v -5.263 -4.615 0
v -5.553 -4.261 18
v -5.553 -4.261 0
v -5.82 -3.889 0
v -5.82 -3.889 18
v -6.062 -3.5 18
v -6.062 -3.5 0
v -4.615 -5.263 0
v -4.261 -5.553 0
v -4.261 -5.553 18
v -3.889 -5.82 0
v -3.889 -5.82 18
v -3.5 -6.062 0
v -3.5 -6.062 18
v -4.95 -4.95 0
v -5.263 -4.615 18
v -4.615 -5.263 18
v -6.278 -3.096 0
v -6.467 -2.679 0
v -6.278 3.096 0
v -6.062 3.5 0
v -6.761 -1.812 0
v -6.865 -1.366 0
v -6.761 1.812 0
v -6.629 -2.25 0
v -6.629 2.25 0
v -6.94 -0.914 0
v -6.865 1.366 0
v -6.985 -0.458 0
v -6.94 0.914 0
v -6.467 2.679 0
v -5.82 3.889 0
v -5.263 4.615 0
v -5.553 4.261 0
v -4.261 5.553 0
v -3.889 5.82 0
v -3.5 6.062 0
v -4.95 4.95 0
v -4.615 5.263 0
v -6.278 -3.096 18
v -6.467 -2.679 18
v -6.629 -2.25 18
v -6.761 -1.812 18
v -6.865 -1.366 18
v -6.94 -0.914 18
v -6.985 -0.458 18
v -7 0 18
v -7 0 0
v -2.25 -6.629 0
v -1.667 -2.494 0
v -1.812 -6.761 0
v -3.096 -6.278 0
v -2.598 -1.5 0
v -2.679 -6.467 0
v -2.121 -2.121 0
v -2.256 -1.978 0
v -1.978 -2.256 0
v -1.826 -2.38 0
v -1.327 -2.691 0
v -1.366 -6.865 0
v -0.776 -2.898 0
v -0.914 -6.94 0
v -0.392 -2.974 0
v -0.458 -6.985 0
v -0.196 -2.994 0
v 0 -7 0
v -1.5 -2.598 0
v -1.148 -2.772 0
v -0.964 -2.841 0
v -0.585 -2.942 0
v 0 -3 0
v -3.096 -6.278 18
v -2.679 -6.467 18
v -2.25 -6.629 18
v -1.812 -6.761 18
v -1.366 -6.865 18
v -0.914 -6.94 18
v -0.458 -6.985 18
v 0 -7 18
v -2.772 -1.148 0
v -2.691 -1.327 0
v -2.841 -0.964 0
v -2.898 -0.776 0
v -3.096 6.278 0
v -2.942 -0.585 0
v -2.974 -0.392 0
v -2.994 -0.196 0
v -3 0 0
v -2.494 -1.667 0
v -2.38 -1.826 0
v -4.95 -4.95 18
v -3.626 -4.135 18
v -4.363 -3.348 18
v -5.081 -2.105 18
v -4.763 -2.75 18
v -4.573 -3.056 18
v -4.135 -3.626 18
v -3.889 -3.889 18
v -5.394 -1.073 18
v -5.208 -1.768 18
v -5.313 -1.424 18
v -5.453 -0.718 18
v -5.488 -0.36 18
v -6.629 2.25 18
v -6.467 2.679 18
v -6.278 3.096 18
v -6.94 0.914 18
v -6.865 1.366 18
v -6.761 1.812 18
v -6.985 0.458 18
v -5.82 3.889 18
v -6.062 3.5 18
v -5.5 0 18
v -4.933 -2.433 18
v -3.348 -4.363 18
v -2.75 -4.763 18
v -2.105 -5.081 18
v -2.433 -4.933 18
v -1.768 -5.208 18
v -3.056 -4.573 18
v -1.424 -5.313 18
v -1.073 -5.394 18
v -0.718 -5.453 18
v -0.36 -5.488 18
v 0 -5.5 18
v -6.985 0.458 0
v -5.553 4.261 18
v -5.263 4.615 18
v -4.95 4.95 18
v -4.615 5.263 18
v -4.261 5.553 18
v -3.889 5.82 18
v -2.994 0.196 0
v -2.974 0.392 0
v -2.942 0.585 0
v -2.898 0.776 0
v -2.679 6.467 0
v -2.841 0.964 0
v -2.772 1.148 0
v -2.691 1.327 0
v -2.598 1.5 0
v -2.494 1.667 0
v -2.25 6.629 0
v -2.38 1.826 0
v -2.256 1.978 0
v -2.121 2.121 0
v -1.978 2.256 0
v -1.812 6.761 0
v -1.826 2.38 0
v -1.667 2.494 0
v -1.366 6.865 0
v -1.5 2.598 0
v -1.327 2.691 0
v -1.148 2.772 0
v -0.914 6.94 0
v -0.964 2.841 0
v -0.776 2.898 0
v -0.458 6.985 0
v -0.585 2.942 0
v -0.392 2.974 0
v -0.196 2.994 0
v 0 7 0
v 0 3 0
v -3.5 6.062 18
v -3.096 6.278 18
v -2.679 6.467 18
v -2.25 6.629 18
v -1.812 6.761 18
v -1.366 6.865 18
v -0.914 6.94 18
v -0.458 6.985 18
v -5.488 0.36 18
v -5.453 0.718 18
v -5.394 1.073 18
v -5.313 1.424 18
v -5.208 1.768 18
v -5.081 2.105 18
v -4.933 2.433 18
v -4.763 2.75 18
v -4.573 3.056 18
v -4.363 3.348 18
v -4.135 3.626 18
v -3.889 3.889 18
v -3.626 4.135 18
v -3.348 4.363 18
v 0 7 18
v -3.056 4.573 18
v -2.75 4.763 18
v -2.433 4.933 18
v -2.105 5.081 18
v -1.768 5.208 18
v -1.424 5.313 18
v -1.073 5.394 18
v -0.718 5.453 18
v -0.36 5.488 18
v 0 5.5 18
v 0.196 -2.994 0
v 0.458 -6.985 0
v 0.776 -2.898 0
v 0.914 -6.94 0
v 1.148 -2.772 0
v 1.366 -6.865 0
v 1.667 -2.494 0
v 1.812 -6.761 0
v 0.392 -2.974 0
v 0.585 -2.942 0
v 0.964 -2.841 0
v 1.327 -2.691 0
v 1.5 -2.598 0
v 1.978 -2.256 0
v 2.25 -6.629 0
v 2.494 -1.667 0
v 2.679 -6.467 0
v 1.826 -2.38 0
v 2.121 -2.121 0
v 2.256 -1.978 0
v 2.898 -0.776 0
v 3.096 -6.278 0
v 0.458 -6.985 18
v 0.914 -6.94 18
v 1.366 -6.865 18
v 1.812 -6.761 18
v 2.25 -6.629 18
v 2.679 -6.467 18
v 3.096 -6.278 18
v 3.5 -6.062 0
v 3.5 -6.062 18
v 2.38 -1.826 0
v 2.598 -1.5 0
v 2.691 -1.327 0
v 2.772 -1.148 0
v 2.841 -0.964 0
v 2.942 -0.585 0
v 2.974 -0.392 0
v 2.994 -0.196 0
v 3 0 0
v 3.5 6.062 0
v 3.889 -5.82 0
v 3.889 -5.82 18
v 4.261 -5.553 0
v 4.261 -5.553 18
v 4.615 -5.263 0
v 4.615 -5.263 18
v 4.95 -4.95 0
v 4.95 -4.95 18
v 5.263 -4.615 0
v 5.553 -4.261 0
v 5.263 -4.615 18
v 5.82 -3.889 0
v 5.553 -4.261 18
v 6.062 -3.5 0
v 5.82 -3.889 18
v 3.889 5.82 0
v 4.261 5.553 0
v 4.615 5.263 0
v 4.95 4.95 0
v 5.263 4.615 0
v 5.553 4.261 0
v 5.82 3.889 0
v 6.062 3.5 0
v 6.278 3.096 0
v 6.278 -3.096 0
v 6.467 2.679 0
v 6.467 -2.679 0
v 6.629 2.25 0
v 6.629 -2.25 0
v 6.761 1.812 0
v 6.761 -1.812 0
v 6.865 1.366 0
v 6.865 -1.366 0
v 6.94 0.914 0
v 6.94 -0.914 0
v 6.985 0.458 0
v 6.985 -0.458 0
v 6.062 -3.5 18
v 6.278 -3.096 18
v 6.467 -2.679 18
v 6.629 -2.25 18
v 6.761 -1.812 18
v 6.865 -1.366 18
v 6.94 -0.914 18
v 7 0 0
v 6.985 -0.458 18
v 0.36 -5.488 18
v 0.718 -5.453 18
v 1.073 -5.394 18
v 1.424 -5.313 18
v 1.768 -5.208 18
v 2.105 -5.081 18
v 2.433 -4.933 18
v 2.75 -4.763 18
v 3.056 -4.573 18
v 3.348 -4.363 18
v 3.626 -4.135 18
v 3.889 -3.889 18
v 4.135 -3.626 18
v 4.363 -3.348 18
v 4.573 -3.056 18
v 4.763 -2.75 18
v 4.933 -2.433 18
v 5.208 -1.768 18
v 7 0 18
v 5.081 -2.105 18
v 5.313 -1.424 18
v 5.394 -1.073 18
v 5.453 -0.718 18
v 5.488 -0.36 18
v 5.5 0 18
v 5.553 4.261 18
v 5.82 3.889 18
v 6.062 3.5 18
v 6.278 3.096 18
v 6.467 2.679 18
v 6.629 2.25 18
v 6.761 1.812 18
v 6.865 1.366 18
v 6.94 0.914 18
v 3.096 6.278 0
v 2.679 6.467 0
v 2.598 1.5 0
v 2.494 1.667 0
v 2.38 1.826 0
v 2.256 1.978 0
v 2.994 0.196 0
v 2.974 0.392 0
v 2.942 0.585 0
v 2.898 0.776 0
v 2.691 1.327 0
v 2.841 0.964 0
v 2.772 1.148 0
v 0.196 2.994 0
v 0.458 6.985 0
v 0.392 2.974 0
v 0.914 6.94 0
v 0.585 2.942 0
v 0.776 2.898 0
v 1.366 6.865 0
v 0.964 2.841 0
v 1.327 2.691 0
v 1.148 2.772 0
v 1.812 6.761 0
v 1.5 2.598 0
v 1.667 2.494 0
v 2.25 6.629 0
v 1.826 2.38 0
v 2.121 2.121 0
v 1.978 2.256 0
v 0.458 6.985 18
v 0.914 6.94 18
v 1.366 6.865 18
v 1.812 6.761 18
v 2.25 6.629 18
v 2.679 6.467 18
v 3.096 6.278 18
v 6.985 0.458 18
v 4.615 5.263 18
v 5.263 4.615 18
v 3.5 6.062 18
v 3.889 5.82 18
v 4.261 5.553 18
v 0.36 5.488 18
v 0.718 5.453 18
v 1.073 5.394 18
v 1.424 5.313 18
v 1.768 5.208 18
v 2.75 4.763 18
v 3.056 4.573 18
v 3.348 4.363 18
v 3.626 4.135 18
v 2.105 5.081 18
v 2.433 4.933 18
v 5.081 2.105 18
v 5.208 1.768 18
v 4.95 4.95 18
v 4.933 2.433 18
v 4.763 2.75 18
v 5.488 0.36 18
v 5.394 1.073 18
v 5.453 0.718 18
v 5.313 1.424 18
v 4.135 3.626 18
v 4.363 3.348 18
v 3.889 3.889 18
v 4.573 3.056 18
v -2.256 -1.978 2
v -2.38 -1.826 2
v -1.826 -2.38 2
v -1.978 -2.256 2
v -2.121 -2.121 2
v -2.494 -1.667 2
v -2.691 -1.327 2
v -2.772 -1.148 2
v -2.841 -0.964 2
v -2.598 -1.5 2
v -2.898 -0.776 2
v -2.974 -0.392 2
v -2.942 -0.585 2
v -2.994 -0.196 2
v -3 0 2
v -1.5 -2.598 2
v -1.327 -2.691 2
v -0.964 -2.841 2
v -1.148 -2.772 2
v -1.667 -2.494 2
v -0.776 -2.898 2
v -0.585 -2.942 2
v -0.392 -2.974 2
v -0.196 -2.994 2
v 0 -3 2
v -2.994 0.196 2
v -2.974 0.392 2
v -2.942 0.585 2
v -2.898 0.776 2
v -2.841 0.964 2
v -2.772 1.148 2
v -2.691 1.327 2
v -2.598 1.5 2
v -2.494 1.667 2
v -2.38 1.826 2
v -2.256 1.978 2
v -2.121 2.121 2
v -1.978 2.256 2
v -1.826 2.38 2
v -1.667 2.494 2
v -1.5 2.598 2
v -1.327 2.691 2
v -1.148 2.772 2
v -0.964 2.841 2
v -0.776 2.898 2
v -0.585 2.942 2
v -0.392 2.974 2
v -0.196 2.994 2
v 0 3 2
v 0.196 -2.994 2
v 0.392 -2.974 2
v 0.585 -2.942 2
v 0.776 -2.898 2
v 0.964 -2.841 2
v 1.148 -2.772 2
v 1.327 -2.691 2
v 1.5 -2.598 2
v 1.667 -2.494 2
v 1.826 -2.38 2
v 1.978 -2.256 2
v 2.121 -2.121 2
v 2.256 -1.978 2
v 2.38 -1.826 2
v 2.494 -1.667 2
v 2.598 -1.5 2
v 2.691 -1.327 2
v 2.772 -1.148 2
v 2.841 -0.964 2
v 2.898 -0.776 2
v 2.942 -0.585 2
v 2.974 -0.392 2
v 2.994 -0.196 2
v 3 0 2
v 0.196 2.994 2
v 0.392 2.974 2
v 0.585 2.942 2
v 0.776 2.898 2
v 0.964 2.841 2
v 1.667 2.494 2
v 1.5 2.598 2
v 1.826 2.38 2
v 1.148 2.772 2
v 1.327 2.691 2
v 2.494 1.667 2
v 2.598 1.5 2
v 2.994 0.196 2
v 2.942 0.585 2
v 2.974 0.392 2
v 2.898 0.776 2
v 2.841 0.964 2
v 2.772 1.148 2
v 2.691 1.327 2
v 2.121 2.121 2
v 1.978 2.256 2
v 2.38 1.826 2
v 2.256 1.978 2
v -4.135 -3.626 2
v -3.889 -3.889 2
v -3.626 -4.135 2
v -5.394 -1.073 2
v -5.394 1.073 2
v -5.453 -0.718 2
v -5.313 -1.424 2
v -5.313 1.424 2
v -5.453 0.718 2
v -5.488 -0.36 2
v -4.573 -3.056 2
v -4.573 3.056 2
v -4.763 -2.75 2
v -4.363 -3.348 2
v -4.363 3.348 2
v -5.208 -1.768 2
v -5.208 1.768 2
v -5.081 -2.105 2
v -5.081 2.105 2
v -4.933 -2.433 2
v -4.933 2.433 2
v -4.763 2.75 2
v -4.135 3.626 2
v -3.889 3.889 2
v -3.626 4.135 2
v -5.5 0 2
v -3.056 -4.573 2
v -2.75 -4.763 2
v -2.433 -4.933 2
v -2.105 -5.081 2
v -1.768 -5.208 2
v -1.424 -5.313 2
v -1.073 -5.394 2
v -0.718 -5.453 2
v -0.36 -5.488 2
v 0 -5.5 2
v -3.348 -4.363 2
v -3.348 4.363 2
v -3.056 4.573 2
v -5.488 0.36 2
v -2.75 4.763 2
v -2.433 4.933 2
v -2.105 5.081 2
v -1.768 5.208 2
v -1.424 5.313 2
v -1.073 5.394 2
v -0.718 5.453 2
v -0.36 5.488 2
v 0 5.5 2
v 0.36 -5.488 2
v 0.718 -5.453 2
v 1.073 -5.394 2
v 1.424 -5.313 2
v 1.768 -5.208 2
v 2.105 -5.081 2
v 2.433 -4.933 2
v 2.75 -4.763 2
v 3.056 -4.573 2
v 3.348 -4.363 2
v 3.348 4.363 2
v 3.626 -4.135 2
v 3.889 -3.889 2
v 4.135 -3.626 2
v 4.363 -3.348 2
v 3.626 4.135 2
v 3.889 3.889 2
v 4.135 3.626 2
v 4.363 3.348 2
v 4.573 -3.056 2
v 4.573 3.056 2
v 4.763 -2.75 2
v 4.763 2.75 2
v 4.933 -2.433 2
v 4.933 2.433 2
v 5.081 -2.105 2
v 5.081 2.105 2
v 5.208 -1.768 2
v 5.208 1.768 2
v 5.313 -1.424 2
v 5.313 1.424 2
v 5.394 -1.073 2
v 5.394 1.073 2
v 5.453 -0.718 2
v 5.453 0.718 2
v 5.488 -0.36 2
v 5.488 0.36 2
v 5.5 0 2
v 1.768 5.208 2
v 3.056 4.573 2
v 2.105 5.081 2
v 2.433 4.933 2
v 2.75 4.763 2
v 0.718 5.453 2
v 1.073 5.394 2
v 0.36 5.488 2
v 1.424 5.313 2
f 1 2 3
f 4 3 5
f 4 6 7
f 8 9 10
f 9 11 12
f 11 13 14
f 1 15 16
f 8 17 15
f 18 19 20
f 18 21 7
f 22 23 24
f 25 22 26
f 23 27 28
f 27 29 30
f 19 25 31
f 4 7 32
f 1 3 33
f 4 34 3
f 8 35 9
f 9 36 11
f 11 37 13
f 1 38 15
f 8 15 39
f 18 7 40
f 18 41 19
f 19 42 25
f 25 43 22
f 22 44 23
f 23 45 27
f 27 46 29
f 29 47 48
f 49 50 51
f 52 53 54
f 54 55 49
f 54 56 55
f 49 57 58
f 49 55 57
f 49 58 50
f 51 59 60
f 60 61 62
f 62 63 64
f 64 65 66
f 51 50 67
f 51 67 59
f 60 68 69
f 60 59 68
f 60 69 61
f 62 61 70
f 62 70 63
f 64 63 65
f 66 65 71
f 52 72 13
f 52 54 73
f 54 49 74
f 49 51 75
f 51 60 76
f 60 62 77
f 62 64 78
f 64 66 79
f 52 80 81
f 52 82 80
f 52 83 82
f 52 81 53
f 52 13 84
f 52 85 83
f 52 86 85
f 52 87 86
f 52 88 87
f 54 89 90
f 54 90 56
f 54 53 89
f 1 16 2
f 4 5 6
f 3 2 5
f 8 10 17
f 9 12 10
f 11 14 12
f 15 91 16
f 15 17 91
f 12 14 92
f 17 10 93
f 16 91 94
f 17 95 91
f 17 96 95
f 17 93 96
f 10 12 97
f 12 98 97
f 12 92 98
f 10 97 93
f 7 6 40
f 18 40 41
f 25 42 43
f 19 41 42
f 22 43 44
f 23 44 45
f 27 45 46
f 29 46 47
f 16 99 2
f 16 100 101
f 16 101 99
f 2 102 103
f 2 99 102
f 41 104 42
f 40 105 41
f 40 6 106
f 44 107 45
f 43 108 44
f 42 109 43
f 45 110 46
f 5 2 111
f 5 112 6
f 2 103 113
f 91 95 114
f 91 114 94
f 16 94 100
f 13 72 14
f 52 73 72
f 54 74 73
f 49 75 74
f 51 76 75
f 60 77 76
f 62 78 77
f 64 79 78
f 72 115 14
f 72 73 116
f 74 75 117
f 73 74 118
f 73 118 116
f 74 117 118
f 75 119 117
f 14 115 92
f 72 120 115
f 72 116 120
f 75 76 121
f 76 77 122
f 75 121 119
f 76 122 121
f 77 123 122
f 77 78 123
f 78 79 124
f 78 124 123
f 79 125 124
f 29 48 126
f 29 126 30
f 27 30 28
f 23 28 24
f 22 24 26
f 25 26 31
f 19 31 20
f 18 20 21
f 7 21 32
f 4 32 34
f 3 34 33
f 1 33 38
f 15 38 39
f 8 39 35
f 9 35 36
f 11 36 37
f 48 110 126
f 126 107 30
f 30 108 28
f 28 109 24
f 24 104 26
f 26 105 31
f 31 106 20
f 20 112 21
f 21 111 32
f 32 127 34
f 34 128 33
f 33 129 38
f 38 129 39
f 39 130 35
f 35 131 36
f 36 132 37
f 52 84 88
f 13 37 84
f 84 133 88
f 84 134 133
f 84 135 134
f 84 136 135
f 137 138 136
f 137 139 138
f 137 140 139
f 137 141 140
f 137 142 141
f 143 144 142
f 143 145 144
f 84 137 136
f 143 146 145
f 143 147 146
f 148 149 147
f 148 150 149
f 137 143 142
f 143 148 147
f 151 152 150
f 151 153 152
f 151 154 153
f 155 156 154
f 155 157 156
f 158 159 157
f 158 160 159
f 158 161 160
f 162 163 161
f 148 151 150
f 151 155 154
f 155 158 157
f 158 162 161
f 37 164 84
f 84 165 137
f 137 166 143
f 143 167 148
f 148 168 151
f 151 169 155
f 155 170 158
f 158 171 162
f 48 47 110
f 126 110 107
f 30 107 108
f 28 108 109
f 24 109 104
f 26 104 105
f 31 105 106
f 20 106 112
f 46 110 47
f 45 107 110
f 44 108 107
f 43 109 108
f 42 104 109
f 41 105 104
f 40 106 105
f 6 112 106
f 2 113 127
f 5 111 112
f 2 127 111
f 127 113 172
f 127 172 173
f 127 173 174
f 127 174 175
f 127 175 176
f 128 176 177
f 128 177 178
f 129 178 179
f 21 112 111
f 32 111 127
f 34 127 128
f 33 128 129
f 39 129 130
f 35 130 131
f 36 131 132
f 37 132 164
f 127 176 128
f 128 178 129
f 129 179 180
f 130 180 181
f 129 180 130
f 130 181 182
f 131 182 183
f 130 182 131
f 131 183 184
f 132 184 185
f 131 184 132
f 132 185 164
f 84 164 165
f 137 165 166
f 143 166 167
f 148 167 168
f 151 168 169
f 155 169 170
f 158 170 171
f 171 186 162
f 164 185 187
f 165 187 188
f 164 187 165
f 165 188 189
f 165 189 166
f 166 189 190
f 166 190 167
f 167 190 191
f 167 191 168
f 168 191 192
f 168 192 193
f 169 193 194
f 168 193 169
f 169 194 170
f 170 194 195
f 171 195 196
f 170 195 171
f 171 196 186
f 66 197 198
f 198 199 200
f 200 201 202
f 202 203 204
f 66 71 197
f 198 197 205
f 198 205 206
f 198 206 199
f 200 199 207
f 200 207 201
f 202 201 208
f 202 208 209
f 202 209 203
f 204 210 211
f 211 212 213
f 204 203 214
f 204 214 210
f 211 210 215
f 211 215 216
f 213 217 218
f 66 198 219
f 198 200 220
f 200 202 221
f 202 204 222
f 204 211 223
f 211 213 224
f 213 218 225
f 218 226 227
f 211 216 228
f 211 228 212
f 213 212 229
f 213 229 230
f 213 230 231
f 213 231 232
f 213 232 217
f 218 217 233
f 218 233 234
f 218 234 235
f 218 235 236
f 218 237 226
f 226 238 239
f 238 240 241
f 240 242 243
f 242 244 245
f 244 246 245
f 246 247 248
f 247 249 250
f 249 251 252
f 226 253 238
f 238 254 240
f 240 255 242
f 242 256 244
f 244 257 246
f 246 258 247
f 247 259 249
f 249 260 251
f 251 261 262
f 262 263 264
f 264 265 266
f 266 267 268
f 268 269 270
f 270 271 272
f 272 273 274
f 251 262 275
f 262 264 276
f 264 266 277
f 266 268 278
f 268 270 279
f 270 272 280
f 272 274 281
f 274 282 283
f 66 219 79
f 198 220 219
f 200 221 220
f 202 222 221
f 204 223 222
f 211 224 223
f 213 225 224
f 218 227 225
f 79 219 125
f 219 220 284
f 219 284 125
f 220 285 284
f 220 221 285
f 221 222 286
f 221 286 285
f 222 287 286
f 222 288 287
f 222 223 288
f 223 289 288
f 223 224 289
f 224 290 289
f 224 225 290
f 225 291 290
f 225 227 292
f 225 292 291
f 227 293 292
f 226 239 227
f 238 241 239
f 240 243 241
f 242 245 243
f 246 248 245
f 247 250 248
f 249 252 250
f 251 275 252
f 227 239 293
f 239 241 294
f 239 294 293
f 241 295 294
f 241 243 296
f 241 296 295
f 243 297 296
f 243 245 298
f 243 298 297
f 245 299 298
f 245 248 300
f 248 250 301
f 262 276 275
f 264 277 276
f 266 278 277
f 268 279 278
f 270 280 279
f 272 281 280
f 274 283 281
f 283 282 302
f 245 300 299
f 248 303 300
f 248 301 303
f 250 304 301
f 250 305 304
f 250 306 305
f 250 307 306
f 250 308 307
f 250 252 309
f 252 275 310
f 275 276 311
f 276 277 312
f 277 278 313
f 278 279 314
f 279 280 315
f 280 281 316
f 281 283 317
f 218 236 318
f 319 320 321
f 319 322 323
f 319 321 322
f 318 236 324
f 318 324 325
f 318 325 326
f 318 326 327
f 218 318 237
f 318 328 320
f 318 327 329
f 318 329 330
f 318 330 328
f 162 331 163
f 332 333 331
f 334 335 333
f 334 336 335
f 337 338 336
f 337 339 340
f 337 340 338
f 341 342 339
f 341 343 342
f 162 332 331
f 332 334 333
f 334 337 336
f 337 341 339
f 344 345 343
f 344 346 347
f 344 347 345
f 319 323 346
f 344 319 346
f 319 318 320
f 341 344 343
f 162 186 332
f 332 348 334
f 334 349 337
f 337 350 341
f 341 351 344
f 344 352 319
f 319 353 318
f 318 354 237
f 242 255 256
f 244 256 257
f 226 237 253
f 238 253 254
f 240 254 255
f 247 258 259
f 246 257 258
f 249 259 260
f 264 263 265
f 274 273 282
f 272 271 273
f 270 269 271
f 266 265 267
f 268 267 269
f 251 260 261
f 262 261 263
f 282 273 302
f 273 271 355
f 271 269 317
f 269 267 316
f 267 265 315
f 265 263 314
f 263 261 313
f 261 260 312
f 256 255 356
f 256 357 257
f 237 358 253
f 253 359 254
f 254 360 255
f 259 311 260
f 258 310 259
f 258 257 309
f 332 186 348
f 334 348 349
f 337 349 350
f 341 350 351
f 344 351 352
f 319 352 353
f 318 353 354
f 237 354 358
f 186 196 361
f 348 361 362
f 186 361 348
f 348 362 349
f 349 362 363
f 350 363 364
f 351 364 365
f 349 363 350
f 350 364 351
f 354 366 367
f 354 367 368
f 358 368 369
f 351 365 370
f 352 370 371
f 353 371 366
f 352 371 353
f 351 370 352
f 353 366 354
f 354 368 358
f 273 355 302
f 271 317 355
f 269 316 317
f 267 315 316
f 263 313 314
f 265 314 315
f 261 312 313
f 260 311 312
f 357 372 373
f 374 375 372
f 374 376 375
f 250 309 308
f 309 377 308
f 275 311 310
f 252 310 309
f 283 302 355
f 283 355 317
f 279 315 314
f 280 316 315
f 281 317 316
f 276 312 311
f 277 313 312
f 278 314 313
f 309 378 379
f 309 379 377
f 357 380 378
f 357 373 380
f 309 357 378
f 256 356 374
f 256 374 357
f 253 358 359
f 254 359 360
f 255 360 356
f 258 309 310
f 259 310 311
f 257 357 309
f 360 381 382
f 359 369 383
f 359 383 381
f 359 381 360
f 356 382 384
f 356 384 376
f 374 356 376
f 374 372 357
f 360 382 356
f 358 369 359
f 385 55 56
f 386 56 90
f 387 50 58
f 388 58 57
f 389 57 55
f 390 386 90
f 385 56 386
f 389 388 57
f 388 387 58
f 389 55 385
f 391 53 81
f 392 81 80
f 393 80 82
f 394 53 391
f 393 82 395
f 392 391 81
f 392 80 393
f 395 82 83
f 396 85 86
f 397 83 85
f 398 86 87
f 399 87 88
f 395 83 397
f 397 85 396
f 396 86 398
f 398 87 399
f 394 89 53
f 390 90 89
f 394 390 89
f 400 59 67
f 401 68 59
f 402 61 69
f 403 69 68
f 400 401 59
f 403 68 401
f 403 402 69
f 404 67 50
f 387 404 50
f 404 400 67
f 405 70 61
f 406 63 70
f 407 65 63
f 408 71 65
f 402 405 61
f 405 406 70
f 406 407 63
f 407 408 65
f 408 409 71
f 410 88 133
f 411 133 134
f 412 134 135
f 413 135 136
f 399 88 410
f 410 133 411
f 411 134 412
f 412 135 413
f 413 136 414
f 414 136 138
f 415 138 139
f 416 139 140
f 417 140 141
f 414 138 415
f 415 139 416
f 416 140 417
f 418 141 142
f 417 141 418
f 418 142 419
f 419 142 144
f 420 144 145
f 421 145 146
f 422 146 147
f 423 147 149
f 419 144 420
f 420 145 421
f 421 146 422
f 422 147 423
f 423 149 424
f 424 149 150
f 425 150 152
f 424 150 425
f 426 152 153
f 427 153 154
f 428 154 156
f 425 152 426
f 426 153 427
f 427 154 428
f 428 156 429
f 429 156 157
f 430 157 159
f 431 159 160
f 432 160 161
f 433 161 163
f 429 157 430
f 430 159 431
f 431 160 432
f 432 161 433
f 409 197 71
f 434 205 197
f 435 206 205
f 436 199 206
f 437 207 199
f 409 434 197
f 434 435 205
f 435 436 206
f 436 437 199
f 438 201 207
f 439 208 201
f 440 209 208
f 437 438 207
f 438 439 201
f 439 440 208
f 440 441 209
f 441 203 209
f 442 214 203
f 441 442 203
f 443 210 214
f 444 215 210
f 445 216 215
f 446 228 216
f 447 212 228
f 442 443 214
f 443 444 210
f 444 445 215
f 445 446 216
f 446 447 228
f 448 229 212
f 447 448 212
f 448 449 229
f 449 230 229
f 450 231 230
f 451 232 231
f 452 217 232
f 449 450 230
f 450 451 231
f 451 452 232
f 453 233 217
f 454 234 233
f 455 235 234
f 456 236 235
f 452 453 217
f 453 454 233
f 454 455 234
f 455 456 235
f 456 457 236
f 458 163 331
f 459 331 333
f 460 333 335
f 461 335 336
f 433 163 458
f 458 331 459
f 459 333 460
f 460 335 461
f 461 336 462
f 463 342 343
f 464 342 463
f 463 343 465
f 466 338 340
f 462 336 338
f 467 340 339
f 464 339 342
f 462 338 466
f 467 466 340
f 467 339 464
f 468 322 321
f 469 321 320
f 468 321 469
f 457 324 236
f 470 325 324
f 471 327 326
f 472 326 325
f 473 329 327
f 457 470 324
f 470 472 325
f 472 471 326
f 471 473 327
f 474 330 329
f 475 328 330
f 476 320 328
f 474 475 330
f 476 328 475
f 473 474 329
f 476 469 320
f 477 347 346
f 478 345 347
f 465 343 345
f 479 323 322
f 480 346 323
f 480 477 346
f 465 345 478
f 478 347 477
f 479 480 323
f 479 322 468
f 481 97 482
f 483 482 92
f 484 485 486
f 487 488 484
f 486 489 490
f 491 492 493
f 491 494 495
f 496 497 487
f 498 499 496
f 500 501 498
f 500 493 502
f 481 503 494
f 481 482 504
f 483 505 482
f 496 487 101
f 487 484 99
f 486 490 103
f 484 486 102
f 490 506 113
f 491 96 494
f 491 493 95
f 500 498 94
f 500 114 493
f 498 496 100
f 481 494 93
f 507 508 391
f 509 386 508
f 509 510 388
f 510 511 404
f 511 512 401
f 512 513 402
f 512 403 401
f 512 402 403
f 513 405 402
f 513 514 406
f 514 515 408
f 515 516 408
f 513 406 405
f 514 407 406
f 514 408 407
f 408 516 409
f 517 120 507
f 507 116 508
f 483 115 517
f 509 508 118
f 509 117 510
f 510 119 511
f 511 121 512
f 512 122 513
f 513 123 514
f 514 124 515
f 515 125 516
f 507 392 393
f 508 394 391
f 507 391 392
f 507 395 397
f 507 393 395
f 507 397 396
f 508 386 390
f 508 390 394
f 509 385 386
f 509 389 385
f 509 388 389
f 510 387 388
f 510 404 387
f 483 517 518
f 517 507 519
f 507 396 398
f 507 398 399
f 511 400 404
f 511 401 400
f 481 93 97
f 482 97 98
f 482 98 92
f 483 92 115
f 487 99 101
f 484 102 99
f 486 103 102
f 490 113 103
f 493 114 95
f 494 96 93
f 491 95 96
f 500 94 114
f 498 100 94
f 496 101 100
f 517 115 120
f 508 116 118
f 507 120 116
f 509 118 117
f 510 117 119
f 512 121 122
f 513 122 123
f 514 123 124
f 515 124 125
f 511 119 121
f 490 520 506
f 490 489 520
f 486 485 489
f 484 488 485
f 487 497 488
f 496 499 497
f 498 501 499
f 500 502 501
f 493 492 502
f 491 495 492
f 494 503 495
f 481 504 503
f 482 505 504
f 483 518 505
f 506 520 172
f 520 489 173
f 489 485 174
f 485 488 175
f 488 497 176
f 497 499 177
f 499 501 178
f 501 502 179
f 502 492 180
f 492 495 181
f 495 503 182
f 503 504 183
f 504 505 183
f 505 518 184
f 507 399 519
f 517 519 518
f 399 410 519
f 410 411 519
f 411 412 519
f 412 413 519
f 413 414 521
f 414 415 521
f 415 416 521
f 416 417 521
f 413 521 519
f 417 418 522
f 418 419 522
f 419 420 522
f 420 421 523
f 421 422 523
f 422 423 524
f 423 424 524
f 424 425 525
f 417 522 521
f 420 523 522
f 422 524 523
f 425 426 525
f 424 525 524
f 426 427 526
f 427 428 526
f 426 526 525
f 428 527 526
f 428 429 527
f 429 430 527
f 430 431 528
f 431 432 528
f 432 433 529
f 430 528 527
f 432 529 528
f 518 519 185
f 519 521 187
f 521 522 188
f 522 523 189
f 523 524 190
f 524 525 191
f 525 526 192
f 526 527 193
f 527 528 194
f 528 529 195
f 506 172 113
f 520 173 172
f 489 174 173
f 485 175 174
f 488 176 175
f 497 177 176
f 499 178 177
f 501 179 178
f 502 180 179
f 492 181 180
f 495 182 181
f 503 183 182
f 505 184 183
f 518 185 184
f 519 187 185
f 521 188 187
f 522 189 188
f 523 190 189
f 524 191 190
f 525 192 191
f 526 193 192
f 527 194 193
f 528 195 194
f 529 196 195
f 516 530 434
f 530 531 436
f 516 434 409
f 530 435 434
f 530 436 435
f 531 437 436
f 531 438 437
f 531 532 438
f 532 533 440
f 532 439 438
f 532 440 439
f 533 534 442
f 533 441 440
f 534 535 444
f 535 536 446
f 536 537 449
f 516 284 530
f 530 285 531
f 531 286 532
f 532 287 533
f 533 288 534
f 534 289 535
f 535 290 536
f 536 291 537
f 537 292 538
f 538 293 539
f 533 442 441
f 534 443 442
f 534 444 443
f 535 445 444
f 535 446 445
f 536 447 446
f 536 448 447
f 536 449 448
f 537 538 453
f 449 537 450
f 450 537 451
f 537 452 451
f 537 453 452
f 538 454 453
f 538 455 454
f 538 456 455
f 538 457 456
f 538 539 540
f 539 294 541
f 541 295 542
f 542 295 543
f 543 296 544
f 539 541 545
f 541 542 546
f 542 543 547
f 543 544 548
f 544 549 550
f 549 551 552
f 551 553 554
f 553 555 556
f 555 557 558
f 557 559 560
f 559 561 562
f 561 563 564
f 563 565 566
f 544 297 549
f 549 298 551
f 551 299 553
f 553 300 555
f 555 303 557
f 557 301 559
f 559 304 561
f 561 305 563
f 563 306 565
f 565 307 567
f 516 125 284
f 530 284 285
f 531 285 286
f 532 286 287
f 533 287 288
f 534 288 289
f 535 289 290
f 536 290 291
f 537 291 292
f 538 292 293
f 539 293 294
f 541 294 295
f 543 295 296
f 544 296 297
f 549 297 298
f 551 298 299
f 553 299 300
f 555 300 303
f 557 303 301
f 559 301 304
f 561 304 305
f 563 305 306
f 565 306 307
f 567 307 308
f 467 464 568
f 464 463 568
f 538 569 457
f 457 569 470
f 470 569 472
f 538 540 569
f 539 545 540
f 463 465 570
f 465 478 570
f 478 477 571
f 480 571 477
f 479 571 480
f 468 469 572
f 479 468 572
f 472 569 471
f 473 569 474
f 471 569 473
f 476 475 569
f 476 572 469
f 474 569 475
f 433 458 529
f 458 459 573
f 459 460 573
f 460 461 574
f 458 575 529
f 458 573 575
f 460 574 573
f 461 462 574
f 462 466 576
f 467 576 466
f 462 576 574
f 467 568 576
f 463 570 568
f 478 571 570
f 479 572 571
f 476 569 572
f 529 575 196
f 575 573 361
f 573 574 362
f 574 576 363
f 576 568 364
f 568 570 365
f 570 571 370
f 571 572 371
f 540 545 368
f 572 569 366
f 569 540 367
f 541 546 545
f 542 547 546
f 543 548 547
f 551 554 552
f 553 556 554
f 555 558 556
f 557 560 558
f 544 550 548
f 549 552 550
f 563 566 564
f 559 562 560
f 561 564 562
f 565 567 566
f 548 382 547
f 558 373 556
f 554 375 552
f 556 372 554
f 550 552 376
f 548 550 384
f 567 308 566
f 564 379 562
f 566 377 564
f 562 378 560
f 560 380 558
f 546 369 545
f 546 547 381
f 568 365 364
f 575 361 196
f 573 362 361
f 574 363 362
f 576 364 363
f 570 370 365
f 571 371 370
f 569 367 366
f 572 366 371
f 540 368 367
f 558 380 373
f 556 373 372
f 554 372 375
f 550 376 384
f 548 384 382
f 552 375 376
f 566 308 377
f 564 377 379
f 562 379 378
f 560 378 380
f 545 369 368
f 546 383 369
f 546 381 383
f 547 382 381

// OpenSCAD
$fn = 96;

diametro_exterior = 14;
altura_total      = 18;
agujero_grande    = 11;
agujero_pequeno   = 6;
altura_fondo      = 2;

module guia_zapatero() {
    difference() {
        cylinder(h = altura_total, d = diametro_exterior);
        translate([0, 0, -1])
            cylinder(h = altura_total, d = agujero_pequeno);
        translate([0, 0, altura_fondo])
            cylinder(h = altura_total - altura_fondo, d = agujero_grande);
    }
}

guia_zapatero();
